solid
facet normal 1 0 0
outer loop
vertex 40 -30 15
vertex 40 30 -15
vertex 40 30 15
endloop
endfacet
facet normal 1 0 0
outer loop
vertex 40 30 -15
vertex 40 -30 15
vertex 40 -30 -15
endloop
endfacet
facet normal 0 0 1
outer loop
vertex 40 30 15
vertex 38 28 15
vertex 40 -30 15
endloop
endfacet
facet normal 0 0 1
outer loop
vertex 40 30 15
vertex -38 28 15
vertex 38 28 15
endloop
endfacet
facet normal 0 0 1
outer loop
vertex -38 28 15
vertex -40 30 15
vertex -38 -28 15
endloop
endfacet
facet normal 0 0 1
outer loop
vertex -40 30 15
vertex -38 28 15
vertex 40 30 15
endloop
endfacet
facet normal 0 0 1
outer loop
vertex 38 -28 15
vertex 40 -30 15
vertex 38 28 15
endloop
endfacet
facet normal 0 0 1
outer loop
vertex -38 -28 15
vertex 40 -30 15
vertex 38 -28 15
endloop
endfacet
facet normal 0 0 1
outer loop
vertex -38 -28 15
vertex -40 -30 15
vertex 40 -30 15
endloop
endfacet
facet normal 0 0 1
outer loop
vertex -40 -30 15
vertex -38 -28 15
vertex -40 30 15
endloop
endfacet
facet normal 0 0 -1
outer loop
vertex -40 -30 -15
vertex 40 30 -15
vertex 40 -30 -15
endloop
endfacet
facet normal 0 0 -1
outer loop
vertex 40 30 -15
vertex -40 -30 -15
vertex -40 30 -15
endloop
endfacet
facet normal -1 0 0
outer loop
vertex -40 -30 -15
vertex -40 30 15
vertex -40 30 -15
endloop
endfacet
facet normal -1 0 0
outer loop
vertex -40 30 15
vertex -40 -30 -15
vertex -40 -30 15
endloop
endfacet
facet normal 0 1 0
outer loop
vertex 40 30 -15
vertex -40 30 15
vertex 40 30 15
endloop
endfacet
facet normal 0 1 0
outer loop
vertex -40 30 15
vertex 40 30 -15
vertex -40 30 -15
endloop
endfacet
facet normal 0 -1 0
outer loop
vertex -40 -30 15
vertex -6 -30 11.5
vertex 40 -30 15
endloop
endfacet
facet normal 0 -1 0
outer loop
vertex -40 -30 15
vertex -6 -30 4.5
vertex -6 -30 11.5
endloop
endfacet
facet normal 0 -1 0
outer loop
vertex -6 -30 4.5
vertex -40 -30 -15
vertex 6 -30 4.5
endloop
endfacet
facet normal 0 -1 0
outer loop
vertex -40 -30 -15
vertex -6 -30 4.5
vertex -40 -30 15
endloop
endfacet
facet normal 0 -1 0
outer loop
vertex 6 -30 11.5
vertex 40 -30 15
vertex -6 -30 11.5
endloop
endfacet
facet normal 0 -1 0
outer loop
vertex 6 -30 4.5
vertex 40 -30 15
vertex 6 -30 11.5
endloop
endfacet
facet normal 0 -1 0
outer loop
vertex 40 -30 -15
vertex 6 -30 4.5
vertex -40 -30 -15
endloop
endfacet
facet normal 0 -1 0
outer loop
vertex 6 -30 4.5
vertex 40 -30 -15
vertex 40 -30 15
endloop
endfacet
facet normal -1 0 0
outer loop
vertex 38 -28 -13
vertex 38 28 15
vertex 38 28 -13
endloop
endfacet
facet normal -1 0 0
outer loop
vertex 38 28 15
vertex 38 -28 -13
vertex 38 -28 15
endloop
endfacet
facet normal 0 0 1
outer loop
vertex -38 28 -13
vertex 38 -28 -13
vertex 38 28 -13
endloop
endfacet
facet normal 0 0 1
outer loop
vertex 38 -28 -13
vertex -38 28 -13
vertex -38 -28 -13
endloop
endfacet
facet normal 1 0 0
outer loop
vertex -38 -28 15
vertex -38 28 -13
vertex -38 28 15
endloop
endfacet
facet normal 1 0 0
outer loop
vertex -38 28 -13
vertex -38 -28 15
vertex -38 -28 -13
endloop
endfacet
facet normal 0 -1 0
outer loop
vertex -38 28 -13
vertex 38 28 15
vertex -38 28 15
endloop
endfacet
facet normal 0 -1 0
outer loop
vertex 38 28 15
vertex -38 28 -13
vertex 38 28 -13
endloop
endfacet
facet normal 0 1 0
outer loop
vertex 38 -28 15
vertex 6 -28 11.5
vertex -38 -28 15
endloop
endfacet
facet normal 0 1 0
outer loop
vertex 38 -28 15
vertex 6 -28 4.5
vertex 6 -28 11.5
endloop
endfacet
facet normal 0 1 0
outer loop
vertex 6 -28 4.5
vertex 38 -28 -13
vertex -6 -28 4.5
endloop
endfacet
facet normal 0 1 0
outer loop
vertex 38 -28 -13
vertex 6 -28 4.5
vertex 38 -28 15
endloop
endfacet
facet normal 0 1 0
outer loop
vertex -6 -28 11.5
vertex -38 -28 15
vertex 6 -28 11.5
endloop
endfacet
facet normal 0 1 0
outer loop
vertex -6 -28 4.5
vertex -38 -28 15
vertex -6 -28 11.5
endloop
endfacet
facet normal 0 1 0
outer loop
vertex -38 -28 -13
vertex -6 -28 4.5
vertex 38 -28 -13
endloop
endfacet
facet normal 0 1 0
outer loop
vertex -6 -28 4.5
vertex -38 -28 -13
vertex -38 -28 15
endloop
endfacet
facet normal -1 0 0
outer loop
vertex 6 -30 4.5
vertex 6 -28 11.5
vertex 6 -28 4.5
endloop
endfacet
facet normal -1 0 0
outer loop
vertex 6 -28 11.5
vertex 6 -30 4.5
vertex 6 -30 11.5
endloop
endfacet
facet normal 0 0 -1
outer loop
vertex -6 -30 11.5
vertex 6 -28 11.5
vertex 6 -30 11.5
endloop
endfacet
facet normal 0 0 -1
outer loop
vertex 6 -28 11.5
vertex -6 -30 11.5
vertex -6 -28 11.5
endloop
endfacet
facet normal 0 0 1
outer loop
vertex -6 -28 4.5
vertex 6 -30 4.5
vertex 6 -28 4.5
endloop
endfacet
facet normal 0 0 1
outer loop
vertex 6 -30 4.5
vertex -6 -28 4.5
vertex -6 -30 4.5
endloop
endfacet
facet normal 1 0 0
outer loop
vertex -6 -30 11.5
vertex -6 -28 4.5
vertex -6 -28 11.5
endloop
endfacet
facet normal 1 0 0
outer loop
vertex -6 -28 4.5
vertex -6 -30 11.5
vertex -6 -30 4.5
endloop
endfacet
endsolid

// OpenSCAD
// ========================================
// electronics enclosure — body
// NeuroCAD canonical IR; dimensions are millimetres
// ========================================
$fn = 64;

difference() {
  cube(size=[80, 60, 30], center=true);
  translate([0, 0, 1.1]) {
    cube(size=[76, 56, 28.2], center=true);
  }
  translate([0, -29, 8]) {
    cube(size=[12, 4, 7], center=true);
  }
}
